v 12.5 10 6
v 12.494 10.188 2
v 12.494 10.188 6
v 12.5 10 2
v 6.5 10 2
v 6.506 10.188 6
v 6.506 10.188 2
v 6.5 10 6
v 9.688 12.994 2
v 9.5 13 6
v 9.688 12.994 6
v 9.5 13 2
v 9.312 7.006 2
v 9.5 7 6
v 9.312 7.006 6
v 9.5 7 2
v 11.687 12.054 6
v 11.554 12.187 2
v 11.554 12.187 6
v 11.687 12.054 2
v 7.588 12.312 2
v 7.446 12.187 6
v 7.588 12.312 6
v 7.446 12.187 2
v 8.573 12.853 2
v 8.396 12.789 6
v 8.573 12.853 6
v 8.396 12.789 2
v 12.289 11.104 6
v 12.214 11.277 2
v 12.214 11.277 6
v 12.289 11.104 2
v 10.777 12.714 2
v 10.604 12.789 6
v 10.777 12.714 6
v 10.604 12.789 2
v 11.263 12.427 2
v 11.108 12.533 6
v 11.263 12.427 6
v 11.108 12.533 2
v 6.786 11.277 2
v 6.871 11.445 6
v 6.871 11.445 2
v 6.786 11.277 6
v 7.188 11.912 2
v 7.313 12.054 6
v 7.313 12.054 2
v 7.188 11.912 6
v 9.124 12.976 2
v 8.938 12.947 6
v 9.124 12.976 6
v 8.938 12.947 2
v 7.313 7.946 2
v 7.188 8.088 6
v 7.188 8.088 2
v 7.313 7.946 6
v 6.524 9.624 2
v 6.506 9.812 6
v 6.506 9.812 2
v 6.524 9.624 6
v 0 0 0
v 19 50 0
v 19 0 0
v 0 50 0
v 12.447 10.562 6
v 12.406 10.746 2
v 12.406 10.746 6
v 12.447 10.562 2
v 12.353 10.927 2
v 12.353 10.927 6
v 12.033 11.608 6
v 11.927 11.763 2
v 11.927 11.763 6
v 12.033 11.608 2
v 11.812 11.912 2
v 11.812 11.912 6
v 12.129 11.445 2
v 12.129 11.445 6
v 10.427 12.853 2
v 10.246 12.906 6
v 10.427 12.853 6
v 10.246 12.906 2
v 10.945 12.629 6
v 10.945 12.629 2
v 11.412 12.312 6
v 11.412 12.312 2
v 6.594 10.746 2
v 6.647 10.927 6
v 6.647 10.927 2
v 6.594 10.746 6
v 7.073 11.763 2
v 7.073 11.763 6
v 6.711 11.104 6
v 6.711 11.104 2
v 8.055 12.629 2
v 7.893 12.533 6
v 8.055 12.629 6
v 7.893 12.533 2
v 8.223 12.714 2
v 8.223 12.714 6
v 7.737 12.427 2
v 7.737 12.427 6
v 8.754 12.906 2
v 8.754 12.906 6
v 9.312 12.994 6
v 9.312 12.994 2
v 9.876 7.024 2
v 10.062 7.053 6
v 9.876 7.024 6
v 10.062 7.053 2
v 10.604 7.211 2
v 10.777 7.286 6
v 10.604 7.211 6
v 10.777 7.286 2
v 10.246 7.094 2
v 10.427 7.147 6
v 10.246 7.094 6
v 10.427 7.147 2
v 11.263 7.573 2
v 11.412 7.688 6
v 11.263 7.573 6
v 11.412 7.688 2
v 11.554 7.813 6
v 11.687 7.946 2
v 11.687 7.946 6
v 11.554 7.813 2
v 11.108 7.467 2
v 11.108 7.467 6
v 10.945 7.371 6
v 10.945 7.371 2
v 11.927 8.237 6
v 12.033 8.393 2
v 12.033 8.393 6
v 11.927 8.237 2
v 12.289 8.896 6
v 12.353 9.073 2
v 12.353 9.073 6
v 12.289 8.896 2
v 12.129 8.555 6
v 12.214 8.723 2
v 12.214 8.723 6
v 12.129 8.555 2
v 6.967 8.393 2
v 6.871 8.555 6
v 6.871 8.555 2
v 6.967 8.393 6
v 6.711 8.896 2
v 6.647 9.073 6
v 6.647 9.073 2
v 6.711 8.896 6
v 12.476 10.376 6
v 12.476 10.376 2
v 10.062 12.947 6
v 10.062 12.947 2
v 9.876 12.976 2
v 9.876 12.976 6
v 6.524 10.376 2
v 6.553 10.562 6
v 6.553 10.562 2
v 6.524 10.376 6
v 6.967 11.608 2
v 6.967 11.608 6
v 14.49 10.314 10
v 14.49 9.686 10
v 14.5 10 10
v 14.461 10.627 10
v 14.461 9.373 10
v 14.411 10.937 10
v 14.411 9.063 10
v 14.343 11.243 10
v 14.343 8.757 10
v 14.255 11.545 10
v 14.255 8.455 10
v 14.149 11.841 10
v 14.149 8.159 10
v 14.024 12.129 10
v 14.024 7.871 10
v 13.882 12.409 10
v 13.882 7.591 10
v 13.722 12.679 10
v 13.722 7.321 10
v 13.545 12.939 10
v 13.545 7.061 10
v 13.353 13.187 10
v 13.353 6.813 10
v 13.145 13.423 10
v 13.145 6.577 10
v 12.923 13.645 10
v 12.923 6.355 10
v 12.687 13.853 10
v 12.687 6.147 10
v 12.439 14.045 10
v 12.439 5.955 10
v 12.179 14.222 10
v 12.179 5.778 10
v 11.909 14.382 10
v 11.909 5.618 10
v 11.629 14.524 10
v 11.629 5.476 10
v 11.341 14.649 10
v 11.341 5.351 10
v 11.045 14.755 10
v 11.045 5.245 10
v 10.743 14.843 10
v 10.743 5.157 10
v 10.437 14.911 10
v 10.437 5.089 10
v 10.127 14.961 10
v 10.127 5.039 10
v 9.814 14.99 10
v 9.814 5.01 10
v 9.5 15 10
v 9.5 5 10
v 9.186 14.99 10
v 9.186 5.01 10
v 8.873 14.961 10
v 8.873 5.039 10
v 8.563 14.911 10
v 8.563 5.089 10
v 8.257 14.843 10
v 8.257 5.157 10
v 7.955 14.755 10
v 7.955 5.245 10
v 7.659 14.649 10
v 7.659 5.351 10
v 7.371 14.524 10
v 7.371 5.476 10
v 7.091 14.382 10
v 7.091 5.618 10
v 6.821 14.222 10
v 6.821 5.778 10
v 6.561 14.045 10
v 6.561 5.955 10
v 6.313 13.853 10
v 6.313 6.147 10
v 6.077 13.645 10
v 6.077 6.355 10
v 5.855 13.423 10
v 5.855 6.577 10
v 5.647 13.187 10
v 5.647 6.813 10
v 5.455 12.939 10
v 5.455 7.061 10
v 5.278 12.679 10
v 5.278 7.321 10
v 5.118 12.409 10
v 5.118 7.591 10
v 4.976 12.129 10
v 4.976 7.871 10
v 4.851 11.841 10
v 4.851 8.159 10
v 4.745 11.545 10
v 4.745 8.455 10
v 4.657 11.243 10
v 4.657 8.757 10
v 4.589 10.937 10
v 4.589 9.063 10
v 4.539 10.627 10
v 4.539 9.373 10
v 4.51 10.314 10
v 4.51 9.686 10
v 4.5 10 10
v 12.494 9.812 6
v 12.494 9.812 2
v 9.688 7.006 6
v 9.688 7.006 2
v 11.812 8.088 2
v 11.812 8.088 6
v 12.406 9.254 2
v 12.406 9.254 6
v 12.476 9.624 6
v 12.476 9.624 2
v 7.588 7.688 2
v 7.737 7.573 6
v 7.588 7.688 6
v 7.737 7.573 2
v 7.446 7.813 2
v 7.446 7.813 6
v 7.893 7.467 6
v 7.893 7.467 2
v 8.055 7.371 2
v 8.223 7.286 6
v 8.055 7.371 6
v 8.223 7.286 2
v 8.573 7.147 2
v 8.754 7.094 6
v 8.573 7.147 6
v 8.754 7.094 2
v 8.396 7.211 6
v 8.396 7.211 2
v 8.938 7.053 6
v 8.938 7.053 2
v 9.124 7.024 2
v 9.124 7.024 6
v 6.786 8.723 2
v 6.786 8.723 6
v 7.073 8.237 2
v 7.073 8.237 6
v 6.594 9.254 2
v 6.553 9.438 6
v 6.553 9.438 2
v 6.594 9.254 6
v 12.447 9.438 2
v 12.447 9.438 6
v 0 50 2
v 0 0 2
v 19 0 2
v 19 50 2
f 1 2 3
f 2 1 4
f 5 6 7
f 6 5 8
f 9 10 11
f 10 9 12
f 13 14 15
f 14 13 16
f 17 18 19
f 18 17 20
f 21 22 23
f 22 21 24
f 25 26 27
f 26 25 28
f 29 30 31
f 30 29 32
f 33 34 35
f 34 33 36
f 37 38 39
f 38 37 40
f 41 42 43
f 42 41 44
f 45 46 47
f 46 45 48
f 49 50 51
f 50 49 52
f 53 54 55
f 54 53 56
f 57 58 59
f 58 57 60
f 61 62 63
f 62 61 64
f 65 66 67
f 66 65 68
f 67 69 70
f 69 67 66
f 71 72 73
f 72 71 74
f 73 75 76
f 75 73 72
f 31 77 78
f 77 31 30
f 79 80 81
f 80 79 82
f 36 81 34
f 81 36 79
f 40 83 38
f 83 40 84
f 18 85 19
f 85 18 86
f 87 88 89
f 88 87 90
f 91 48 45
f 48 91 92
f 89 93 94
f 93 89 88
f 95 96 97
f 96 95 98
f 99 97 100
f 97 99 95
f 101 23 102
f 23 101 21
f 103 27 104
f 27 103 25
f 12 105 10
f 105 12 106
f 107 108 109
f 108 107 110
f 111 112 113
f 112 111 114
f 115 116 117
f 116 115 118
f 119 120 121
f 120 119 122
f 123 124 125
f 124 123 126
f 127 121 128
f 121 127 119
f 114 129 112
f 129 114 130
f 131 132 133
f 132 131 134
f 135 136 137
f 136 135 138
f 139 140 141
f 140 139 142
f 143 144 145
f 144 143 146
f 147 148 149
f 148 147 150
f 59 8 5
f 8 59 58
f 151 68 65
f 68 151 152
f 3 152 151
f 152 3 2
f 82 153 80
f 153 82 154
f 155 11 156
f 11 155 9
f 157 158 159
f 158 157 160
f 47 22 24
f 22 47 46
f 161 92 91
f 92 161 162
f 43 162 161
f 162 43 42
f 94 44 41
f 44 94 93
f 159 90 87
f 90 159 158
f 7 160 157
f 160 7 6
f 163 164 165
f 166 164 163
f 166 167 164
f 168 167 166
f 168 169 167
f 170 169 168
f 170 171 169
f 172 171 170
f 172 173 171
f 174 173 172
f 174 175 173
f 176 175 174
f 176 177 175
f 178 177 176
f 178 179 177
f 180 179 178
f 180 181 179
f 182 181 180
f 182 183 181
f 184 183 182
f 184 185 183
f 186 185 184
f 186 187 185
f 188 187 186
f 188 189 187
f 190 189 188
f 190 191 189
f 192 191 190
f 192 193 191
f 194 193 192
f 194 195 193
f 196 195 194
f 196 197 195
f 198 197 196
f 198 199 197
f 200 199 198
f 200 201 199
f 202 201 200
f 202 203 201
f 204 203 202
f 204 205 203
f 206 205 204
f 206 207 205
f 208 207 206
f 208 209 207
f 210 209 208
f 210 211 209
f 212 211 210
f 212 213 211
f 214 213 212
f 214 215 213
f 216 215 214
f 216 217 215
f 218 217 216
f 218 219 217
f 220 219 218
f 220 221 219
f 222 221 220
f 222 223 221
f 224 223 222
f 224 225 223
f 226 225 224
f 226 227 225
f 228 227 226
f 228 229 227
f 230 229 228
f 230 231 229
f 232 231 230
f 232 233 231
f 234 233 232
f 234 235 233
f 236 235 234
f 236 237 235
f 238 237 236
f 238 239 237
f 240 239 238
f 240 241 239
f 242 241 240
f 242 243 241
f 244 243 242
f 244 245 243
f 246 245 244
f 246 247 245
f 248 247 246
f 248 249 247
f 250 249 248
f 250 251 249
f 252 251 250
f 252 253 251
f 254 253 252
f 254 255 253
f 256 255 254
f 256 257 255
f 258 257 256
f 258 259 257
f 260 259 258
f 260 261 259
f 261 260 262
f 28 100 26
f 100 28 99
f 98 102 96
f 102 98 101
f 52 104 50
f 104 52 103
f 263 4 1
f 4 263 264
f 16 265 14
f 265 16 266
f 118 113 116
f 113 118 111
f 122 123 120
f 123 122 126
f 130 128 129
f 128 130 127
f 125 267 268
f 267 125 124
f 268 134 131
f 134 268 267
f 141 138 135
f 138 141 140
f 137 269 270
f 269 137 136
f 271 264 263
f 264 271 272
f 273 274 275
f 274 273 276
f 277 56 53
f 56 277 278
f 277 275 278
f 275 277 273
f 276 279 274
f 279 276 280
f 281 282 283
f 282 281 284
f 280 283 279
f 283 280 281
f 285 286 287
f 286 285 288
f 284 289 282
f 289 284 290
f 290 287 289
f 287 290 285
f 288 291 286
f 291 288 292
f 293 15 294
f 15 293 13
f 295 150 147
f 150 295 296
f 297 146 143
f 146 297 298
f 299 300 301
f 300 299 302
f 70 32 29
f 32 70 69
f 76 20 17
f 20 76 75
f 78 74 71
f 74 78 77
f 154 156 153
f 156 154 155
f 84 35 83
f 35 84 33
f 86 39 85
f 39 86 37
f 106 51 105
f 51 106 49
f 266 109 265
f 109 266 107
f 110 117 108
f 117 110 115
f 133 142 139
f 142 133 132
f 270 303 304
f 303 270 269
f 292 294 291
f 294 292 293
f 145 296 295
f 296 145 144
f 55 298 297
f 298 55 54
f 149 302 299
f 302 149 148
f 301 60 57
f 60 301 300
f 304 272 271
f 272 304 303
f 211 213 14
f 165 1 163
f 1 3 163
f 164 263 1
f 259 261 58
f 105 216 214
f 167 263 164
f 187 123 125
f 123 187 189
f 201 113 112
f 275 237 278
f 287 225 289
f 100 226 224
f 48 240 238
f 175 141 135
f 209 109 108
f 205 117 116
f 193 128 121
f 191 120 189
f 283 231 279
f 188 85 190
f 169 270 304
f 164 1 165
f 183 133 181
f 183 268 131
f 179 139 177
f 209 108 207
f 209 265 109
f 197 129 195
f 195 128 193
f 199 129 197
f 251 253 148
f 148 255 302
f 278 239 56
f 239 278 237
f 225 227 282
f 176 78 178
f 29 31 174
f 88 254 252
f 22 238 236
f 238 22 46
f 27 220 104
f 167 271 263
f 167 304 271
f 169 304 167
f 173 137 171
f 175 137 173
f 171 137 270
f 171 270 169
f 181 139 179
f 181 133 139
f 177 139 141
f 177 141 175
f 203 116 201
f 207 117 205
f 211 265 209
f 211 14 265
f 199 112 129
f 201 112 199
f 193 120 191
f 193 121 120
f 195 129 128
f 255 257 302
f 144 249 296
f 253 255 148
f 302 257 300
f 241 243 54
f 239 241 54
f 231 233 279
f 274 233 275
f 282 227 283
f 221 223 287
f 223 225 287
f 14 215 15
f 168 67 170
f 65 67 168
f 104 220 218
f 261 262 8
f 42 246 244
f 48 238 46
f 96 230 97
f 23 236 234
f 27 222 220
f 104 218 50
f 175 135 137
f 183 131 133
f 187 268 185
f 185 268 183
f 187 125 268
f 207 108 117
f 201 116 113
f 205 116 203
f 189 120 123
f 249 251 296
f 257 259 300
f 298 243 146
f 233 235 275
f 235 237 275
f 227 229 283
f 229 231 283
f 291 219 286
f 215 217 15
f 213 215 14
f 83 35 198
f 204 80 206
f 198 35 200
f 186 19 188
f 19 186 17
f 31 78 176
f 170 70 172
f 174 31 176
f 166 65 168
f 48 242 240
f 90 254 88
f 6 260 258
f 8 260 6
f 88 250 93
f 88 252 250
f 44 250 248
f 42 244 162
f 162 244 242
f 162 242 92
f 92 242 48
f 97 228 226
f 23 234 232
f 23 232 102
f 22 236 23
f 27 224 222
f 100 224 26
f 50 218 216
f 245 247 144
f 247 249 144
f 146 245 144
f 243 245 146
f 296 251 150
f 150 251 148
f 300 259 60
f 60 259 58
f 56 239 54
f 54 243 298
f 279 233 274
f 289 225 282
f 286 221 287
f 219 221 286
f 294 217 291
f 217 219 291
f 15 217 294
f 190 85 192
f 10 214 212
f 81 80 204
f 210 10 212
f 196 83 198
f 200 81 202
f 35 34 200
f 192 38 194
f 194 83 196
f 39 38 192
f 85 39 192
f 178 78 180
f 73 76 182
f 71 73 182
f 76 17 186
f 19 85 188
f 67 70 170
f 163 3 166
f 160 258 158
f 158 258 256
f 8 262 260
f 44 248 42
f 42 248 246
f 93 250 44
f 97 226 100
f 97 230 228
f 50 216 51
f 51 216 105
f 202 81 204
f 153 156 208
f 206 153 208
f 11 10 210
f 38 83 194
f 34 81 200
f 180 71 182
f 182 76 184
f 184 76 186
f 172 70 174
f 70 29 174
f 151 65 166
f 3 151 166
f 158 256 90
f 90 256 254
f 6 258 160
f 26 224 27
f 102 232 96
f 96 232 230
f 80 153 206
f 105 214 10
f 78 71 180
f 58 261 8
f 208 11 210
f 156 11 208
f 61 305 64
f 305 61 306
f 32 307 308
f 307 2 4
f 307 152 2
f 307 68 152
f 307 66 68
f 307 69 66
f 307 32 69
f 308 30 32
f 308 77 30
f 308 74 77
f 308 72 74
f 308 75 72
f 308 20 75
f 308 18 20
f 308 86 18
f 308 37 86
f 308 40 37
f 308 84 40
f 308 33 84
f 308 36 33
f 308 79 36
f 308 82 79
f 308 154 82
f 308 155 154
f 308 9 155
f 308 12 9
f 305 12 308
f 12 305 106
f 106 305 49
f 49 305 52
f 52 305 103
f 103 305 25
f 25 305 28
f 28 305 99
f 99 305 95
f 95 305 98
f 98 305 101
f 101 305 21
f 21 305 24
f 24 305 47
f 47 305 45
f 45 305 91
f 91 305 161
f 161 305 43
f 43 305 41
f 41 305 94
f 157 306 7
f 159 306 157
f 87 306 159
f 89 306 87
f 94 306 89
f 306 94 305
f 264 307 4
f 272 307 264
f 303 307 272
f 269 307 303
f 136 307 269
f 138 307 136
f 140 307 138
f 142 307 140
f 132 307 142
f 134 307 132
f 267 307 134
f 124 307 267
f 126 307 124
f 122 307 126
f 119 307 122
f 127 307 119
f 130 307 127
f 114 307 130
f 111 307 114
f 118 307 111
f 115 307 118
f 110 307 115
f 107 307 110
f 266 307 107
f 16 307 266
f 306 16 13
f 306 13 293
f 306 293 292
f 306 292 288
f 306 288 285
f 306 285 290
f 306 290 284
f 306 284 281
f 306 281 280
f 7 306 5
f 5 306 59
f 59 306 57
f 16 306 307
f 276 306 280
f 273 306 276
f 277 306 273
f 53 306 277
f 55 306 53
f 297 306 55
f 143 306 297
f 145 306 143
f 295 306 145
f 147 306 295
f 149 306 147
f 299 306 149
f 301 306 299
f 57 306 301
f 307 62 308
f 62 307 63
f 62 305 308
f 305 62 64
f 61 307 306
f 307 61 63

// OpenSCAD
//CUSTOMIZER VARIABLES
// bolt_length: the length of the entire bolt from the base to tip
// bolt_clearance: the length of the narrow part of the bolt
// head_dia:  the diameter of the widest point on the bolt, at the end
// shaft_dia: the diameter of the rest of the bolt
//
// all measurements are in mm

//	bolt length, mm
bolt_length = 8;	//	[5:10]

//	bolt clearance, mm
bolt_clearance = 4;	//	[5:10]

//	head diameter, mm
head_dia = 10;	//	[5:30]

//	shaft diameter, mm
shaft_dia = 6;	//	[3:20]

//CUSTOMIZER VARIABLES END

plate_thickness = 2;
plate_width     = 19;
plate_height    = 50;

// Render fineness
$fn = 100;

// Maybe add some stuff for sticker size?

cube([plate_width, plate_height, plate_thickness]);
translate([plate_width/2, plate_height * 0.2, 0]){
    cylinder(h=bolt_length + plate_thickness, r=shaft_dia/2);
    
    translate([0, 0, bolt_clearance + plate_thickness ]){
        cylinder(h=bolt_length - bolt_clearance, r1=shaft_dia/2, r2=head_dia/2);
    }
}
